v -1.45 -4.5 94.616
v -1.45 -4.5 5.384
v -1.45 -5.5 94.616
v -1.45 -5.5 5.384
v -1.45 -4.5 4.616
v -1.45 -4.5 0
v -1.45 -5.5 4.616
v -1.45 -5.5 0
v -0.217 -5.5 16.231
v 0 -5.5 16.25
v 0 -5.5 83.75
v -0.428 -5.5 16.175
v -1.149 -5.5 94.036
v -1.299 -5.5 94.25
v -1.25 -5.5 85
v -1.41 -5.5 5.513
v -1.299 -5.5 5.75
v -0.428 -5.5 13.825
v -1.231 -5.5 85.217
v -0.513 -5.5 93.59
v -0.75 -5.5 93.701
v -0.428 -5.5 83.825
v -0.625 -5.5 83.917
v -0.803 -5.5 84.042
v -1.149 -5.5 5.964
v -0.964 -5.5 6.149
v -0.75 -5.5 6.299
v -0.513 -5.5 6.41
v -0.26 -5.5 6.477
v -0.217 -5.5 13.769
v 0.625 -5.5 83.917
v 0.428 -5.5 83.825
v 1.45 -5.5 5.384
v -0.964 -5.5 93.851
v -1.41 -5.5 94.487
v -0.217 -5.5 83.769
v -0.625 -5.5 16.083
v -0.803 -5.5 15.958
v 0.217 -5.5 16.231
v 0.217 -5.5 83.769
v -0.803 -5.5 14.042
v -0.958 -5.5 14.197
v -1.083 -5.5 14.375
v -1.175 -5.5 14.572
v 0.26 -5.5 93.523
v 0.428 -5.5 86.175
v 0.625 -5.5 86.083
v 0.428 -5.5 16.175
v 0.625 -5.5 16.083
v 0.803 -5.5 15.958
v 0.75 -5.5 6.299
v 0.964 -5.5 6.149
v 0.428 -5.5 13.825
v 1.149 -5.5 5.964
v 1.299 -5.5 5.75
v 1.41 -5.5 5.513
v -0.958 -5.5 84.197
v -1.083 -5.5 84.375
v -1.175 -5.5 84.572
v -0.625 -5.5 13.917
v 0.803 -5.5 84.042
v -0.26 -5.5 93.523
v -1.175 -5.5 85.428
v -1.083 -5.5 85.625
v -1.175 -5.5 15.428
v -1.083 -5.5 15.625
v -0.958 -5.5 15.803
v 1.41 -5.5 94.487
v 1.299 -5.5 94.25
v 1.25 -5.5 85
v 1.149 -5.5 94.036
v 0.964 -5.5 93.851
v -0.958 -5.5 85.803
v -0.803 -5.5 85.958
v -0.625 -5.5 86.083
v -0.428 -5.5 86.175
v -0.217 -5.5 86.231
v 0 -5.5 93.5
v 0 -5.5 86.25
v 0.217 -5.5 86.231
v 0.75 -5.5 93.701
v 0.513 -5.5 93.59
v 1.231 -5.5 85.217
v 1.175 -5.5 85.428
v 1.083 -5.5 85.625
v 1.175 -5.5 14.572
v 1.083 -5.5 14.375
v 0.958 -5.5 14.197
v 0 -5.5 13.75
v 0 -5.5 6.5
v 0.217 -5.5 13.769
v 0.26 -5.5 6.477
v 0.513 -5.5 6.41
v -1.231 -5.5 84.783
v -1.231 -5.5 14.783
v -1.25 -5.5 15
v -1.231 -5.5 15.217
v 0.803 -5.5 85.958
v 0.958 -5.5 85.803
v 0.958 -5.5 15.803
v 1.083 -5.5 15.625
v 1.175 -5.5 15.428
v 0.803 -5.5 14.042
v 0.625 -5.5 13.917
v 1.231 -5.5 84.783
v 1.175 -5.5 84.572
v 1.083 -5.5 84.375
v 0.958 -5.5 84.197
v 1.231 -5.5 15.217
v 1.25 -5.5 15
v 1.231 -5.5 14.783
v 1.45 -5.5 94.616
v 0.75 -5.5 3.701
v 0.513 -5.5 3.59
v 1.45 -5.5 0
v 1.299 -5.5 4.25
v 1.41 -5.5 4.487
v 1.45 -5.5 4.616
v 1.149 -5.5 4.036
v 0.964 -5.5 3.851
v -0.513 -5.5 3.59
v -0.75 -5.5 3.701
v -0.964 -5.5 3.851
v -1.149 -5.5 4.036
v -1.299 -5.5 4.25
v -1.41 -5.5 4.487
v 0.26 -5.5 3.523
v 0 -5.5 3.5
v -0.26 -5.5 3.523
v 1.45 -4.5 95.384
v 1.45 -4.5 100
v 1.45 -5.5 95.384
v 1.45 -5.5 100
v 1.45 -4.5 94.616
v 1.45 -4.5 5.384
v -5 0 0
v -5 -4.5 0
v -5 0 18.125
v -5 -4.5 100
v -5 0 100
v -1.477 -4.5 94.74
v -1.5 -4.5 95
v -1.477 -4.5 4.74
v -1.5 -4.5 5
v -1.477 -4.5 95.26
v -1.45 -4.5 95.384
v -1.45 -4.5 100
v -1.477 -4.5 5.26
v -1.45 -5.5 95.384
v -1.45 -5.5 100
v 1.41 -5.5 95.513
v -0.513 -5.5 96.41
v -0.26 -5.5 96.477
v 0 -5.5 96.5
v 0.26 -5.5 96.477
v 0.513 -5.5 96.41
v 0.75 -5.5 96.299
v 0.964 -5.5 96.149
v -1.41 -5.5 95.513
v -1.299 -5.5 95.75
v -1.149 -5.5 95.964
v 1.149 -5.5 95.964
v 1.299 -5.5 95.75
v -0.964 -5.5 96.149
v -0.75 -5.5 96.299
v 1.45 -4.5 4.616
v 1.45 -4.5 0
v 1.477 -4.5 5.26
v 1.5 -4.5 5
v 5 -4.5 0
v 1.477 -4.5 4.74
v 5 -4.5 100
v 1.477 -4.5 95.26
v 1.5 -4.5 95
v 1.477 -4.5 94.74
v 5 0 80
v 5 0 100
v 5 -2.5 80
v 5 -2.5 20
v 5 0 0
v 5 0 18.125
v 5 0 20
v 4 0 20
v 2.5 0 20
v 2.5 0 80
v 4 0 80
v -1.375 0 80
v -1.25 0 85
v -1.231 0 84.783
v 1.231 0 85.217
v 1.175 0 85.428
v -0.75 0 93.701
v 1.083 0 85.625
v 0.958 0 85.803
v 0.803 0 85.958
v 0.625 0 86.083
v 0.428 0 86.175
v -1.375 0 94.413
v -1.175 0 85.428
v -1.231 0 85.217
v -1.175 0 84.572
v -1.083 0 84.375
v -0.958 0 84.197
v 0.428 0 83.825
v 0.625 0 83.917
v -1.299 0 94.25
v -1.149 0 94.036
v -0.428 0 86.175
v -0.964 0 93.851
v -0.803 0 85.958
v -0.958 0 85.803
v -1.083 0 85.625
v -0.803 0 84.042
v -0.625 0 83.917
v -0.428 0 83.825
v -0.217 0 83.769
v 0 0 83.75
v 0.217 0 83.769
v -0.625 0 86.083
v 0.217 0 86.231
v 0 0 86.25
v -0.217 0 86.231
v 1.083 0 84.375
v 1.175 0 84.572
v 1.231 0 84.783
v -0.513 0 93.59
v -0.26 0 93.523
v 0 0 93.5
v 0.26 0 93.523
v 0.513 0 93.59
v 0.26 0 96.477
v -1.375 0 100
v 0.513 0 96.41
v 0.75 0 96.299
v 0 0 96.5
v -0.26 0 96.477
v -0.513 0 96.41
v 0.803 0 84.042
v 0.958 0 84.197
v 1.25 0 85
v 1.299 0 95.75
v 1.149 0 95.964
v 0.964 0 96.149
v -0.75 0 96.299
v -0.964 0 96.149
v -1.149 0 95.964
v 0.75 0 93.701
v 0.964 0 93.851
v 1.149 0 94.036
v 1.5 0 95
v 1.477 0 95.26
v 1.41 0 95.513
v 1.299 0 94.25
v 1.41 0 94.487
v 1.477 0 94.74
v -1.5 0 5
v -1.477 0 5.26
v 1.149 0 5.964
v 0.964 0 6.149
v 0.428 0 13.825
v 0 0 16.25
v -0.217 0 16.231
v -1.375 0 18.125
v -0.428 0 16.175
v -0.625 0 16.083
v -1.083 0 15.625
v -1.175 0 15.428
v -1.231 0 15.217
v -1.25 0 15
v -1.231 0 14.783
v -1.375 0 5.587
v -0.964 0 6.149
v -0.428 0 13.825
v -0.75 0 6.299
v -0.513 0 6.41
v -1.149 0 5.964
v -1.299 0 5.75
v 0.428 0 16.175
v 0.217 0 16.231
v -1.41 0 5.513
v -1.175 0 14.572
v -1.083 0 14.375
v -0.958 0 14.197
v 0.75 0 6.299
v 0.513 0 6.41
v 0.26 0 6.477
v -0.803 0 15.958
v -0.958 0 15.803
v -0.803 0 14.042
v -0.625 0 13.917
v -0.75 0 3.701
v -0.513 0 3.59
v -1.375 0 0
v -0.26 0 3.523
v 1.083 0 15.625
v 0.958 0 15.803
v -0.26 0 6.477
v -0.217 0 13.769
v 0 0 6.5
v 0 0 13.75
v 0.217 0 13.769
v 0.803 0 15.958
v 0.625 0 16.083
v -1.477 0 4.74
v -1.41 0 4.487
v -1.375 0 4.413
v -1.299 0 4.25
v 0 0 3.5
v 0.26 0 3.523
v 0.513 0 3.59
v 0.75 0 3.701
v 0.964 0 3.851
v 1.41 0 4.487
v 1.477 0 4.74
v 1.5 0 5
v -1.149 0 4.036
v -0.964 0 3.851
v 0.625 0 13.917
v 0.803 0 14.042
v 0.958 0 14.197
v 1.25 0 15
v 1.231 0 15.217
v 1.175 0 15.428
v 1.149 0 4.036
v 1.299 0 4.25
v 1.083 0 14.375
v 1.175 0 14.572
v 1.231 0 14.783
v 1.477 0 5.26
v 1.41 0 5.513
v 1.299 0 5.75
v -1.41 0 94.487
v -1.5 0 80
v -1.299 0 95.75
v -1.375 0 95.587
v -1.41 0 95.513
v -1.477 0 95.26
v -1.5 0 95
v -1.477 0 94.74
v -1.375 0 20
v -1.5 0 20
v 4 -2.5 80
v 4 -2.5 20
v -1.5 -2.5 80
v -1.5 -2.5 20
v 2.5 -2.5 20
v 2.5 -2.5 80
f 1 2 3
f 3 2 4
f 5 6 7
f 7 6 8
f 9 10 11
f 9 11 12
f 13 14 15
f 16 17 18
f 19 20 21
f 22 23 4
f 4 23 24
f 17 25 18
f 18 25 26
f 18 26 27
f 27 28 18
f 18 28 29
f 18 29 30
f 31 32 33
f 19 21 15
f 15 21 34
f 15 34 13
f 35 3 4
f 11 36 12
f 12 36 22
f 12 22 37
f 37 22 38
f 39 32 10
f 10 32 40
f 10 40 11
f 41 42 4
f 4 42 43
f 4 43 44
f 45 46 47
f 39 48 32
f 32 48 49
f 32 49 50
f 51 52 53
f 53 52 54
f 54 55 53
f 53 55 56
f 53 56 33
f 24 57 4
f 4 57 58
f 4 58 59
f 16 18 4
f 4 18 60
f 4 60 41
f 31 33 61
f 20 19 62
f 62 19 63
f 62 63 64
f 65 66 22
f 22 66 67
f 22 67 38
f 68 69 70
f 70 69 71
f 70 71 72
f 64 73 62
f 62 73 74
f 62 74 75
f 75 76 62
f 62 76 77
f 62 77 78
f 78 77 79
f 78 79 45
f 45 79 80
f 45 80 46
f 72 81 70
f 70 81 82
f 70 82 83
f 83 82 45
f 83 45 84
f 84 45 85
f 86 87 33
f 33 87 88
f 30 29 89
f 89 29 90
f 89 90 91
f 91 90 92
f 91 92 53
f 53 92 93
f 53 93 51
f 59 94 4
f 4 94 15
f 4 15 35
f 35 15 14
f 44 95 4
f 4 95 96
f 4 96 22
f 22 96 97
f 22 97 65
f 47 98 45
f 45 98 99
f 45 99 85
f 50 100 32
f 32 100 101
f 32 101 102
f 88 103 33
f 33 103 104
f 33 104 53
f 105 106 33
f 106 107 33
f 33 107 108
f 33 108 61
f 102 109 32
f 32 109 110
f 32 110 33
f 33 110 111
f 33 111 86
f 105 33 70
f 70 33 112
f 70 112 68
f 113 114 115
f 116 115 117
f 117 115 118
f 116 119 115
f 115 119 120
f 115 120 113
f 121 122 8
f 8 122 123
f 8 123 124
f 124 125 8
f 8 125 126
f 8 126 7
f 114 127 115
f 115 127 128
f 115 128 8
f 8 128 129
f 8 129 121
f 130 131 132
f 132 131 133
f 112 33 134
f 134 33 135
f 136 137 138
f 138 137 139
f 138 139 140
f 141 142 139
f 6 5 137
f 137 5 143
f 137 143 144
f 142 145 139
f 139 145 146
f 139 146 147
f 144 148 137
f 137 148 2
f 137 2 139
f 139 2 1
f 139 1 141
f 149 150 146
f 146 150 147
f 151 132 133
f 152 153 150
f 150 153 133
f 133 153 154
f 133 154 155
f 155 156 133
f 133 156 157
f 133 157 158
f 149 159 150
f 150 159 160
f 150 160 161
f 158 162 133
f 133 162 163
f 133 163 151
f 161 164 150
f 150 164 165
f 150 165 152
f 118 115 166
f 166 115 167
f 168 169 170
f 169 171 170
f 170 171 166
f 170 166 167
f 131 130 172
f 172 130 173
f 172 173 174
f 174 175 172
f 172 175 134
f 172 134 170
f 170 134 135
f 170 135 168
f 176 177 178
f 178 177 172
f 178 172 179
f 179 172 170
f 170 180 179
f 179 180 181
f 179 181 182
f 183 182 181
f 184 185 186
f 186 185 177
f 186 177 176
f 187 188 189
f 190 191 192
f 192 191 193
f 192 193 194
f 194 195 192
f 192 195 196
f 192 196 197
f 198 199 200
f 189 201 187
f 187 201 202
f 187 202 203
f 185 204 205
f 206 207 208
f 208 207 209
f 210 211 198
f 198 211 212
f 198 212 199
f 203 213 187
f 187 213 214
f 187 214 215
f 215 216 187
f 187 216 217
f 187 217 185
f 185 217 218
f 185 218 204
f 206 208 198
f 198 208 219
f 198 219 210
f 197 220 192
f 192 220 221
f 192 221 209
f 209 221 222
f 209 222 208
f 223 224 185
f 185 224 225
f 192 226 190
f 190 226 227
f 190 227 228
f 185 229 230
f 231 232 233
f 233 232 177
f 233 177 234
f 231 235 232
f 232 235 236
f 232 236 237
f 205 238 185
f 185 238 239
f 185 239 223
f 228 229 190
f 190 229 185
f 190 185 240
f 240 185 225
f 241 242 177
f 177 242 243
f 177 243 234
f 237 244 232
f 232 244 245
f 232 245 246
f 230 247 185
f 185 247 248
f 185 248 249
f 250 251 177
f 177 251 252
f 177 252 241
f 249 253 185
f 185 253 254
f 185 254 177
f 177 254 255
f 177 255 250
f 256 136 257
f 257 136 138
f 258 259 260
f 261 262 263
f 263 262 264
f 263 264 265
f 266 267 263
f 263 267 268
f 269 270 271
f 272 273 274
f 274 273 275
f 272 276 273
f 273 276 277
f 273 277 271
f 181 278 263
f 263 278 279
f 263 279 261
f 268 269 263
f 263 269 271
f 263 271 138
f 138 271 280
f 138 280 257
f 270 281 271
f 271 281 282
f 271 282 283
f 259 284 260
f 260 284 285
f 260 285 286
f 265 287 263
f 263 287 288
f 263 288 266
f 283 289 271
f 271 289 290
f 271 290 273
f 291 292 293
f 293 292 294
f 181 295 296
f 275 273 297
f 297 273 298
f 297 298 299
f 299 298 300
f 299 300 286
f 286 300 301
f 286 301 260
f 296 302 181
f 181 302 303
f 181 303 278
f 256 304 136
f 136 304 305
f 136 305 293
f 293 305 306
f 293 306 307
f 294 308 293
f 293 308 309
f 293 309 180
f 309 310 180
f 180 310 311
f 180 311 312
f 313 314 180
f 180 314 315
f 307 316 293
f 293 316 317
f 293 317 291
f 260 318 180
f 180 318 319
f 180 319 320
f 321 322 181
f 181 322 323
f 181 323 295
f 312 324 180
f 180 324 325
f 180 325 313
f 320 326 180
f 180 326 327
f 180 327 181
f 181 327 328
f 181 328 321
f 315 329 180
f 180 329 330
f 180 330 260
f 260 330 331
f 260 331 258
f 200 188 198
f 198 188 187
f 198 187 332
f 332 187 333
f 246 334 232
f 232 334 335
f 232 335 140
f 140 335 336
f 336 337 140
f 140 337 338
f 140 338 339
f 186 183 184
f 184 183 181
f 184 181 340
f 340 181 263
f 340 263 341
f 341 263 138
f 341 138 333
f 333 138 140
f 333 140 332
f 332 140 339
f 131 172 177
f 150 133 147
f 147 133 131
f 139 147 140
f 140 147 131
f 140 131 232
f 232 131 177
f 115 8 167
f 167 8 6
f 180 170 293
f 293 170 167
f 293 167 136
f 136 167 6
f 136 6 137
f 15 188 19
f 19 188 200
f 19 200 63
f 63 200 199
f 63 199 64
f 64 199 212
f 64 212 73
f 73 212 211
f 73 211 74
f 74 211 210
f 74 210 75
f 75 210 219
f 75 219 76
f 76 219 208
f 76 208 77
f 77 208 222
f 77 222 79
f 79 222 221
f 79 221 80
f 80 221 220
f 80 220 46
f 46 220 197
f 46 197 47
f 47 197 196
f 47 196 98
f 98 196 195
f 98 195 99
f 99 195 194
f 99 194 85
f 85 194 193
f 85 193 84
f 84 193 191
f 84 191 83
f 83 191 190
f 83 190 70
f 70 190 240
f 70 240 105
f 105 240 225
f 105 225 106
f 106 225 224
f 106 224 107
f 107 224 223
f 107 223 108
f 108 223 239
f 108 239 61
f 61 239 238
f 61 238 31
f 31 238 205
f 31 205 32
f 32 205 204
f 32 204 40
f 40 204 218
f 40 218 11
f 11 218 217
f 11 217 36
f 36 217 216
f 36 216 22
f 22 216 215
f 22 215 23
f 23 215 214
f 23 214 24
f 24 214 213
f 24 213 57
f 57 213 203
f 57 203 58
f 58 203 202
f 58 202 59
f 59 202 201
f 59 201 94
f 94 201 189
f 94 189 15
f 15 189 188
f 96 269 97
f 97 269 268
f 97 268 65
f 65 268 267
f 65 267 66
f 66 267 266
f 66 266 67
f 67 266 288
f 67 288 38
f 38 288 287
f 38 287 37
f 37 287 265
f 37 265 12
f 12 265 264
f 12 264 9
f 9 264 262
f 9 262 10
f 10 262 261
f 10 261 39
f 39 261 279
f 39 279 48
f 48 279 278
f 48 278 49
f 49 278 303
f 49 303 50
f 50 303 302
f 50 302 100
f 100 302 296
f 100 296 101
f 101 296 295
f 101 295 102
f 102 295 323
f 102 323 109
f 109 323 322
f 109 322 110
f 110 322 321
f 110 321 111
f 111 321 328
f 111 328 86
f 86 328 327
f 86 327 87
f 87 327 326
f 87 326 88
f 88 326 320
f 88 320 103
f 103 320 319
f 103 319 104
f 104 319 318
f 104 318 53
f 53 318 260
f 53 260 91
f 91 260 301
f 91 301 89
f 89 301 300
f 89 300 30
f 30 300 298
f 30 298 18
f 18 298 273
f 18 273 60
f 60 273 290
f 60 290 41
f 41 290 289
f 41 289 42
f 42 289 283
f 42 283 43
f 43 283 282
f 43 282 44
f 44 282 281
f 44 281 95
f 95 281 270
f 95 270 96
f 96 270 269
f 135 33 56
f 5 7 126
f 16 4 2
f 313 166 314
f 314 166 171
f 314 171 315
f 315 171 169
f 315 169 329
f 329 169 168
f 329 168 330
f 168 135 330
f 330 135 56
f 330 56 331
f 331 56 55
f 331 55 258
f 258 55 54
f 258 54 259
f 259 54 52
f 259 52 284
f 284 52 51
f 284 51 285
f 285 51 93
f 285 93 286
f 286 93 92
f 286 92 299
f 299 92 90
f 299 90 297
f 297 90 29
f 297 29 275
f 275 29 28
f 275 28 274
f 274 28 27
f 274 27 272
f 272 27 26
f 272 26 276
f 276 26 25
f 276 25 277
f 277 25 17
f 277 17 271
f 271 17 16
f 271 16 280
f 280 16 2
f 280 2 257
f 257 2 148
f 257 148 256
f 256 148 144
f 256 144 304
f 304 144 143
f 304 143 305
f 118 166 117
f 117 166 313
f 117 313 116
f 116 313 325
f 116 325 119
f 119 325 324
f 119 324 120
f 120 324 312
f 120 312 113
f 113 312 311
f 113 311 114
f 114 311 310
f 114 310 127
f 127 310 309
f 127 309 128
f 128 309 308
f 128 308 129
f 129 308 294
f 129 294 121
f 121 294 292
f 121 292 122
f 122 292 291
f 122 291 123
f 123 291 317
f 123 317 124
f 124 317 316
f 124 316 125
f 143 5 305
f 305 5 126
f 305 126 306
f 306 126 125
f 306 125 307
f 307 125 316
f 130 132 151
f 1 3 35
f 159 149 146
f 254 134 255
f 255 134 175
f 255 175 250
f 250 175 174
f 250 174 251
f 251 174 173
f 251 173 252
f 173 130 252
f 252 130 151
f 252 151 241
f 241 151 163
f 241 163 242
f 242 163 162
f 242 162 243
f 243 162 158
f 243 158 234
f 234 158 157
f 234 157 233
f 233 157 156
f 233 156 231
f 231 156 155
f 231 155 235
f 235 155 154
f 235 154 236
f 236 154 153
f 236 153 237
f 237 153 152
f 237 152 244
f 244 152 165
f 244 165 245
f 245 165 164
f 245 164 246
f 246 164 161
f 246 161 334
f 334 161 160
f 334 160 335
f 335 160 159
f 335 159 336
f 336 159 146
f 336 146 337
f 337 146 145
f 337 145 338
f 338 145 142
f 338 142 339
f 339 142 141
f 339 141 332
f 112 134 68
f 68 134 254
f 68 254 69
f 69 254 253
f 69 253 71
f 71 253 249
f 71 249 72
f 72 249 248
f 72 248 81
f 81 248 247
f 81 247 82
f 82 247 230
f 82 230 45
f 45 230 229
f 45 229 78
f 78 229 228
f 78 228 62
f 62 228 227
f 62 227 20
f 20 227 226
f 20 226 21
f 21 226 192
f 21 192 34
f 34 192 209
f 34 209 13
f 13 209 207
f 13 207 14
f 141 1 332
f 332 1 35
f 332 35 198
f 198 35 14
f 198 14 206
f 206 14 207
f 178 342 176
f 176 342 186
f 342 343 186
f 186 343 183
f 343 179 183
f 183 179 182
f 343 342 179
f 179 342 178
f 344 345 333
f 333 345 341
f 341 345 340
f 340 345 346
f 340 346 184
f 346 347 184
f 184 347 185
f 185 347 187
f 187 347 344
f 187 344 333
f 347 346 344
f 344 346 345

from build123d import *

# Parameters (mm, degrees)
MAIN_DEPTH      = 100
SKETCH2_R       = 1.25
SKETCH2_R_2     = 1.5
MAINHOLES_DEPTH = 6.5
SKETCH3_W       = 1
SKETCH3_H       = 60
SKETCH3_W_2     = 4
PINHOLES_DEPTH  = 2.5


with BuildPart() as part:
    # Sketch1 → Main (new body)
    with BuildSketch(Plane.XY):
        Polygon((-5, 0), (5, 0), (5, -4.5), (1.45, -4.5), (1.45, -5.5), (-1.45, -5.5), (-1.45, -4.5), (-5, -4.5), align=None)
    extrude(amount=MAIN_DEPTH)

    # Sketch2 → MainHoles (cut, through all)
    with BuildSketch(Plane(origin=(0, 0, 0), x_dir=(1, 0, 0), z_dir=(0, 1, 0))):
        with Locations((0, -85)):
            Circle(SKETCH2_R)
        with Locations((0, -15)):
            Circle(SKETCH2_R)
        with Locations((0, -5)):
            Circle(SKETCH2_R_2)
        with Locations((0, -95)):
            Circle(SKETCH2_R_2)
    extrude(amount=-MAINHOLES_DEPTH, mode=Mode.SUBTRACT)

    # Sketch3 → PinHoles (cut)
    with BuildSketch(Plane(origin=(0, 0, 0), x_dir=(1, 0, 0), z_dir=(0, 1, 0))):
        with Locations((4.5, -50)):
            Rectangle(SKETCH3_W, SKETCH3_H)
        with Locations((0.5, -50)):
            Rectangle(SKETCH3_W_2, SKETCH3_H)
    extrude(amount=-PINHOLES_DEPTH, mode=Mode.SUBTRACT)


solid = part.part
